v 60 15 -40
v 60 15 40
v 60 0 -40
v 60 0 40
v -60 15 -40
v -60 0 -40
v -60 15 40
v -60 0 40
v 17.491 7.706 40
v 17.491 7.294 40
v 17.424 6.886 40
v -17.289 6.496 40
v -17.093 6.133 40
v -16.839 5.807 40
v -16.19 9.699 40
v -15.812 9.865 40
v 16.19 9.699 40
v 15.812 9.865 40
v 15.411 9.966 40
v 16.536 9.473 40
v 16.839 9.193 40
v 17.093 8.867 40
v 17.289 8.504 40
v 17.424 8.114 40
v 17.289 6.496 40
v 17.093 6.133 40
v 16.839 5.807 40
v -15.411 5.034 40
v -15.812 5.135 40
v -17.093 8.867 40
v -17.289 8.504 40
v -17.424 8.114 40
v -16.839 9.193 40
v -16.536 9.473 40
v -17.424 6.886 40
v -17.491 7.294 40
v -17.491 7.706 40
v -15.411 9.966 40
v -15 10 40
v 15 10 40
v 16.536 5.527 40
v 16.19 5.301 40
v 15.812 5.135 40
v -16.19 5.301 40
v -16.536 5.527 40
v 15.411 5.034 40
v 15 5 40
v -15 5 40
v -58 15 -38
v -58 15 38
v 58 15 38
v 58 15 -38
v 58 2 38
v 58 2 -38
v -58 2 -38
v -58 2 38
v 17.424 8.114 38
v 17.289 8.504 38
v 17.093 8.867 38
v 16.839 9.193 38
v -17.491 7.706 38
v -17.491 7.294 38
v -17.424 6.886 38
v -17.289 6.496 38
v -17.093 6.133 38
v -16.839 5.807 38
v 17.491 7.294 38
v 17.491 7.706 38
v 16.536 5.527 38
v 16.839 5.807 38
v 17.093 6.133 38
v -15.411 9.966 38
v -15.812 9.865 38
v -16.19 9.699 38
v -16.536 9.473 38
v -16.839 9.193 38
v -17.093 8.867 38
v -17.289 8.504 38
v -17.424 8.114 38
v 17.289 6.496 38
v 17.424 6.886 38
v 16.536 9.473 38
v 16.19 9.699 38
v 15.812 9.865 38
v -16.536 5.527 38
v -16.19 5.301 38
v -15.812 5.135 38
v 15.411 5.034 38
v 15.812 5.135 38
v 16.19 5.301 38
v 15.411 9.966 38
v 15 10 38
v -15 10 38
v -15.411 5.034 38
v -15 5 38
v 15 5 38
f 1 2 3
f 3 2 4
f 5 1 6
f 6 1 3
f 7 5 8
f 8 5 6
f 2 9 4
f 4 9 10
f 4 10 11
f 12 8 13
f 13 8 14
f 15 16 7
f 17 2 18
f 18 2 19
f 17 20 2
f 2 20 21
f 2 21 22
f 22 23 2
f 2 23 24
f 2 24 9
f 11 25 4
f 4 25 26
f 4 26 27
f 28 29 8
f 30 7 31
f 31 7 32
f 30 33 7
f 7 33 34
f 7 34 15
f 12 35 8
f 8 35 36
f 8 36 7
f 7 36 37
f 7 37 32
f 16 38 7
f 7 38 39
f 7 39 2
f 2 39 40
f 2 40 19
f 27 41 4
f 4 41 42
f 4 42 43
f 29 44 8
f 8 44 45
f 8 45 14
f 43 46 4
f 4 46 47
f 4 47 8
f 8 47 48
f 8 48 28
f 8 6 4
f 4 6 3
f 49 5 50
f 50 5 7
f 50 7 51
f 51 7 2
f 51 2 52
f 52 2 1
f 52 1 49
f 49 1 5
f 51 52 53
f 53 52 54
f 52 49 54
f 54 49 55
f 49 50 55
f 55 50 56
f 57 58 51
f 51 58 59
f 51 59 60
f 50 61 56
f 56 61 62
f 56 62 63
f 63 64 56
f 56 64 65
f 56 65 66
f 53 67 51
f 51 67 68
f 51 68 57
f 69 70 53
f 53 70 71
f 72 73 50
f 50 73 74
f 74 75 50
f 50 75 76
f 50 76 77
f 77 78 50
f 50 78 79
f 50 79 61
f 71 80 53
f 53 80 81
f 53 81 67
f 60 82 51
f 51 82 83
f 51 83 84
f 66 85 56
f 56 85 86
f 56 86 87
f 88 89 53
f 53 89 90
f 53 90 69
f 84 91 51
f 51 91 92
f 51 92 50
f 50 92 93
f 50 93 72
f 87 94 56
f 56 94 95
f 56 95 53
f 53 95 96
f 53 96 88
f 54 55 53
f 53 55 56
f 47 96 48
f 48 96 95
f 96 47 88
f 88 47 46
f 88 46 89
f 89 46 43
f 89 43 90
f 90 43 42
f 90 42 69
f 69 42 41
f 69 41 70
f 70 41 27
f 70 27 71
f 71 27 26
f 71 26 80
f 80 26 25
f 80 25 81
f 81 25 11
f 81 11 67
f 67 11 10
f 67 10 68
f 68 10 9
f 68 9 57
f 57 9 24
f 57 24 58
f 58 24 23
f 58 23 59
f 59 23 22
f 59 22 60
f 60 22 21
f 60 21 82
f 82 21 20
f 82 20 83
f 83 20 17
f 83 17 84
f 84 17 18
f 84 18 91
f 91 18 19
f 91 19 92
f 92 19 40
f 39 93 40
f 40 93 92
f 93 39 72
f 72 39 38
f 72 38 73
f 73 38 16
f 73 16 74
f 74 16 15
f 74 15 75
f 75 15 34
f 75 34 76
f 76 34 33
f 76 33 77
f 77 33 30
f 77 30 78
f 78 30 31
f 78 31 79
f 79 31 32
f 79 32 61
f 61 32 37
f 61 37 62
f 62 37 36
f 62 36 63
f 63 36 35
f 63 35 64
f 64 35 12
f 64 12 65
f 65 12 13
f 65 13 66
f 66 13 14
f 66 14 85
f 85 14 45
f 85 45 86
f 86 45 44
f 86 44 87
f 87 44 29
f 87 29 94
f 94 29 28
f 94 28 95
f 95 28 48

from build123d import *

# Parameters (mm, degrees)
ESBO_O1_W                = 120
ESBO_O1_H                = 80
RESSALTO_EXTRUS_O2_DEPTH = 2
ESBO_O2_W                = 120
ESBO_O2_H                = 80
ESBO_O2_W_2              = 116
ESBO_O2_H_2              = 76
EXTRUS_O_FINA1_DEPTH     = 13
CORTE_EXTRUS_O1_DEPTH    = 2


with BuildPart() as part:
    # Esboço1 → Ressalto-extrusão2 (new body)
    with BuildSketch(Plane(origin=(0, 0, 0), x_dir=(1, 0, 0), z_dir=(0, 1, 0))):
        Rectangle(ESBO_O1_W, ESBO_O1_H)
    extrude(amount=RESSALTO_EXTRUS_O2_DEPTH)

    # Esboço2 → Extrusão-Fina1 (add)
    with BuildSketch(Plane(origin=(0, 2, 0), x_dir=(1, 0, 0), z_dir=(0, 1, 0))):
        Rectangle(ESBO_O2_W, ESBO_O2_H)
        Rectangle(ESBO_O2_W_2, ESBO_O2_H_2, mode=Mode.SUBTRACT)
    extrude(amount=EXTRUS_O_FINA1_DEPTH)

    # Esboço3 → Corte-extrusão1 (cut)
    with BuildSketch(Plane.XY.offset(40)):
        with BuildLine():
            Line((-15, 10), (15, 10))
            ThreePointArc((15, 10), (17.5, 7.5), (15, 5))
            Line((15, 5), (-15, 5))
            ThreePointArc((-15, 5), (-17.5, 7.5), (-15, 10))
        make_face()
    extrude(amount=-CORTE_EXTRUS_O1_DEPTH, mode=Mode.SUBTRACT)


solid = part.part
